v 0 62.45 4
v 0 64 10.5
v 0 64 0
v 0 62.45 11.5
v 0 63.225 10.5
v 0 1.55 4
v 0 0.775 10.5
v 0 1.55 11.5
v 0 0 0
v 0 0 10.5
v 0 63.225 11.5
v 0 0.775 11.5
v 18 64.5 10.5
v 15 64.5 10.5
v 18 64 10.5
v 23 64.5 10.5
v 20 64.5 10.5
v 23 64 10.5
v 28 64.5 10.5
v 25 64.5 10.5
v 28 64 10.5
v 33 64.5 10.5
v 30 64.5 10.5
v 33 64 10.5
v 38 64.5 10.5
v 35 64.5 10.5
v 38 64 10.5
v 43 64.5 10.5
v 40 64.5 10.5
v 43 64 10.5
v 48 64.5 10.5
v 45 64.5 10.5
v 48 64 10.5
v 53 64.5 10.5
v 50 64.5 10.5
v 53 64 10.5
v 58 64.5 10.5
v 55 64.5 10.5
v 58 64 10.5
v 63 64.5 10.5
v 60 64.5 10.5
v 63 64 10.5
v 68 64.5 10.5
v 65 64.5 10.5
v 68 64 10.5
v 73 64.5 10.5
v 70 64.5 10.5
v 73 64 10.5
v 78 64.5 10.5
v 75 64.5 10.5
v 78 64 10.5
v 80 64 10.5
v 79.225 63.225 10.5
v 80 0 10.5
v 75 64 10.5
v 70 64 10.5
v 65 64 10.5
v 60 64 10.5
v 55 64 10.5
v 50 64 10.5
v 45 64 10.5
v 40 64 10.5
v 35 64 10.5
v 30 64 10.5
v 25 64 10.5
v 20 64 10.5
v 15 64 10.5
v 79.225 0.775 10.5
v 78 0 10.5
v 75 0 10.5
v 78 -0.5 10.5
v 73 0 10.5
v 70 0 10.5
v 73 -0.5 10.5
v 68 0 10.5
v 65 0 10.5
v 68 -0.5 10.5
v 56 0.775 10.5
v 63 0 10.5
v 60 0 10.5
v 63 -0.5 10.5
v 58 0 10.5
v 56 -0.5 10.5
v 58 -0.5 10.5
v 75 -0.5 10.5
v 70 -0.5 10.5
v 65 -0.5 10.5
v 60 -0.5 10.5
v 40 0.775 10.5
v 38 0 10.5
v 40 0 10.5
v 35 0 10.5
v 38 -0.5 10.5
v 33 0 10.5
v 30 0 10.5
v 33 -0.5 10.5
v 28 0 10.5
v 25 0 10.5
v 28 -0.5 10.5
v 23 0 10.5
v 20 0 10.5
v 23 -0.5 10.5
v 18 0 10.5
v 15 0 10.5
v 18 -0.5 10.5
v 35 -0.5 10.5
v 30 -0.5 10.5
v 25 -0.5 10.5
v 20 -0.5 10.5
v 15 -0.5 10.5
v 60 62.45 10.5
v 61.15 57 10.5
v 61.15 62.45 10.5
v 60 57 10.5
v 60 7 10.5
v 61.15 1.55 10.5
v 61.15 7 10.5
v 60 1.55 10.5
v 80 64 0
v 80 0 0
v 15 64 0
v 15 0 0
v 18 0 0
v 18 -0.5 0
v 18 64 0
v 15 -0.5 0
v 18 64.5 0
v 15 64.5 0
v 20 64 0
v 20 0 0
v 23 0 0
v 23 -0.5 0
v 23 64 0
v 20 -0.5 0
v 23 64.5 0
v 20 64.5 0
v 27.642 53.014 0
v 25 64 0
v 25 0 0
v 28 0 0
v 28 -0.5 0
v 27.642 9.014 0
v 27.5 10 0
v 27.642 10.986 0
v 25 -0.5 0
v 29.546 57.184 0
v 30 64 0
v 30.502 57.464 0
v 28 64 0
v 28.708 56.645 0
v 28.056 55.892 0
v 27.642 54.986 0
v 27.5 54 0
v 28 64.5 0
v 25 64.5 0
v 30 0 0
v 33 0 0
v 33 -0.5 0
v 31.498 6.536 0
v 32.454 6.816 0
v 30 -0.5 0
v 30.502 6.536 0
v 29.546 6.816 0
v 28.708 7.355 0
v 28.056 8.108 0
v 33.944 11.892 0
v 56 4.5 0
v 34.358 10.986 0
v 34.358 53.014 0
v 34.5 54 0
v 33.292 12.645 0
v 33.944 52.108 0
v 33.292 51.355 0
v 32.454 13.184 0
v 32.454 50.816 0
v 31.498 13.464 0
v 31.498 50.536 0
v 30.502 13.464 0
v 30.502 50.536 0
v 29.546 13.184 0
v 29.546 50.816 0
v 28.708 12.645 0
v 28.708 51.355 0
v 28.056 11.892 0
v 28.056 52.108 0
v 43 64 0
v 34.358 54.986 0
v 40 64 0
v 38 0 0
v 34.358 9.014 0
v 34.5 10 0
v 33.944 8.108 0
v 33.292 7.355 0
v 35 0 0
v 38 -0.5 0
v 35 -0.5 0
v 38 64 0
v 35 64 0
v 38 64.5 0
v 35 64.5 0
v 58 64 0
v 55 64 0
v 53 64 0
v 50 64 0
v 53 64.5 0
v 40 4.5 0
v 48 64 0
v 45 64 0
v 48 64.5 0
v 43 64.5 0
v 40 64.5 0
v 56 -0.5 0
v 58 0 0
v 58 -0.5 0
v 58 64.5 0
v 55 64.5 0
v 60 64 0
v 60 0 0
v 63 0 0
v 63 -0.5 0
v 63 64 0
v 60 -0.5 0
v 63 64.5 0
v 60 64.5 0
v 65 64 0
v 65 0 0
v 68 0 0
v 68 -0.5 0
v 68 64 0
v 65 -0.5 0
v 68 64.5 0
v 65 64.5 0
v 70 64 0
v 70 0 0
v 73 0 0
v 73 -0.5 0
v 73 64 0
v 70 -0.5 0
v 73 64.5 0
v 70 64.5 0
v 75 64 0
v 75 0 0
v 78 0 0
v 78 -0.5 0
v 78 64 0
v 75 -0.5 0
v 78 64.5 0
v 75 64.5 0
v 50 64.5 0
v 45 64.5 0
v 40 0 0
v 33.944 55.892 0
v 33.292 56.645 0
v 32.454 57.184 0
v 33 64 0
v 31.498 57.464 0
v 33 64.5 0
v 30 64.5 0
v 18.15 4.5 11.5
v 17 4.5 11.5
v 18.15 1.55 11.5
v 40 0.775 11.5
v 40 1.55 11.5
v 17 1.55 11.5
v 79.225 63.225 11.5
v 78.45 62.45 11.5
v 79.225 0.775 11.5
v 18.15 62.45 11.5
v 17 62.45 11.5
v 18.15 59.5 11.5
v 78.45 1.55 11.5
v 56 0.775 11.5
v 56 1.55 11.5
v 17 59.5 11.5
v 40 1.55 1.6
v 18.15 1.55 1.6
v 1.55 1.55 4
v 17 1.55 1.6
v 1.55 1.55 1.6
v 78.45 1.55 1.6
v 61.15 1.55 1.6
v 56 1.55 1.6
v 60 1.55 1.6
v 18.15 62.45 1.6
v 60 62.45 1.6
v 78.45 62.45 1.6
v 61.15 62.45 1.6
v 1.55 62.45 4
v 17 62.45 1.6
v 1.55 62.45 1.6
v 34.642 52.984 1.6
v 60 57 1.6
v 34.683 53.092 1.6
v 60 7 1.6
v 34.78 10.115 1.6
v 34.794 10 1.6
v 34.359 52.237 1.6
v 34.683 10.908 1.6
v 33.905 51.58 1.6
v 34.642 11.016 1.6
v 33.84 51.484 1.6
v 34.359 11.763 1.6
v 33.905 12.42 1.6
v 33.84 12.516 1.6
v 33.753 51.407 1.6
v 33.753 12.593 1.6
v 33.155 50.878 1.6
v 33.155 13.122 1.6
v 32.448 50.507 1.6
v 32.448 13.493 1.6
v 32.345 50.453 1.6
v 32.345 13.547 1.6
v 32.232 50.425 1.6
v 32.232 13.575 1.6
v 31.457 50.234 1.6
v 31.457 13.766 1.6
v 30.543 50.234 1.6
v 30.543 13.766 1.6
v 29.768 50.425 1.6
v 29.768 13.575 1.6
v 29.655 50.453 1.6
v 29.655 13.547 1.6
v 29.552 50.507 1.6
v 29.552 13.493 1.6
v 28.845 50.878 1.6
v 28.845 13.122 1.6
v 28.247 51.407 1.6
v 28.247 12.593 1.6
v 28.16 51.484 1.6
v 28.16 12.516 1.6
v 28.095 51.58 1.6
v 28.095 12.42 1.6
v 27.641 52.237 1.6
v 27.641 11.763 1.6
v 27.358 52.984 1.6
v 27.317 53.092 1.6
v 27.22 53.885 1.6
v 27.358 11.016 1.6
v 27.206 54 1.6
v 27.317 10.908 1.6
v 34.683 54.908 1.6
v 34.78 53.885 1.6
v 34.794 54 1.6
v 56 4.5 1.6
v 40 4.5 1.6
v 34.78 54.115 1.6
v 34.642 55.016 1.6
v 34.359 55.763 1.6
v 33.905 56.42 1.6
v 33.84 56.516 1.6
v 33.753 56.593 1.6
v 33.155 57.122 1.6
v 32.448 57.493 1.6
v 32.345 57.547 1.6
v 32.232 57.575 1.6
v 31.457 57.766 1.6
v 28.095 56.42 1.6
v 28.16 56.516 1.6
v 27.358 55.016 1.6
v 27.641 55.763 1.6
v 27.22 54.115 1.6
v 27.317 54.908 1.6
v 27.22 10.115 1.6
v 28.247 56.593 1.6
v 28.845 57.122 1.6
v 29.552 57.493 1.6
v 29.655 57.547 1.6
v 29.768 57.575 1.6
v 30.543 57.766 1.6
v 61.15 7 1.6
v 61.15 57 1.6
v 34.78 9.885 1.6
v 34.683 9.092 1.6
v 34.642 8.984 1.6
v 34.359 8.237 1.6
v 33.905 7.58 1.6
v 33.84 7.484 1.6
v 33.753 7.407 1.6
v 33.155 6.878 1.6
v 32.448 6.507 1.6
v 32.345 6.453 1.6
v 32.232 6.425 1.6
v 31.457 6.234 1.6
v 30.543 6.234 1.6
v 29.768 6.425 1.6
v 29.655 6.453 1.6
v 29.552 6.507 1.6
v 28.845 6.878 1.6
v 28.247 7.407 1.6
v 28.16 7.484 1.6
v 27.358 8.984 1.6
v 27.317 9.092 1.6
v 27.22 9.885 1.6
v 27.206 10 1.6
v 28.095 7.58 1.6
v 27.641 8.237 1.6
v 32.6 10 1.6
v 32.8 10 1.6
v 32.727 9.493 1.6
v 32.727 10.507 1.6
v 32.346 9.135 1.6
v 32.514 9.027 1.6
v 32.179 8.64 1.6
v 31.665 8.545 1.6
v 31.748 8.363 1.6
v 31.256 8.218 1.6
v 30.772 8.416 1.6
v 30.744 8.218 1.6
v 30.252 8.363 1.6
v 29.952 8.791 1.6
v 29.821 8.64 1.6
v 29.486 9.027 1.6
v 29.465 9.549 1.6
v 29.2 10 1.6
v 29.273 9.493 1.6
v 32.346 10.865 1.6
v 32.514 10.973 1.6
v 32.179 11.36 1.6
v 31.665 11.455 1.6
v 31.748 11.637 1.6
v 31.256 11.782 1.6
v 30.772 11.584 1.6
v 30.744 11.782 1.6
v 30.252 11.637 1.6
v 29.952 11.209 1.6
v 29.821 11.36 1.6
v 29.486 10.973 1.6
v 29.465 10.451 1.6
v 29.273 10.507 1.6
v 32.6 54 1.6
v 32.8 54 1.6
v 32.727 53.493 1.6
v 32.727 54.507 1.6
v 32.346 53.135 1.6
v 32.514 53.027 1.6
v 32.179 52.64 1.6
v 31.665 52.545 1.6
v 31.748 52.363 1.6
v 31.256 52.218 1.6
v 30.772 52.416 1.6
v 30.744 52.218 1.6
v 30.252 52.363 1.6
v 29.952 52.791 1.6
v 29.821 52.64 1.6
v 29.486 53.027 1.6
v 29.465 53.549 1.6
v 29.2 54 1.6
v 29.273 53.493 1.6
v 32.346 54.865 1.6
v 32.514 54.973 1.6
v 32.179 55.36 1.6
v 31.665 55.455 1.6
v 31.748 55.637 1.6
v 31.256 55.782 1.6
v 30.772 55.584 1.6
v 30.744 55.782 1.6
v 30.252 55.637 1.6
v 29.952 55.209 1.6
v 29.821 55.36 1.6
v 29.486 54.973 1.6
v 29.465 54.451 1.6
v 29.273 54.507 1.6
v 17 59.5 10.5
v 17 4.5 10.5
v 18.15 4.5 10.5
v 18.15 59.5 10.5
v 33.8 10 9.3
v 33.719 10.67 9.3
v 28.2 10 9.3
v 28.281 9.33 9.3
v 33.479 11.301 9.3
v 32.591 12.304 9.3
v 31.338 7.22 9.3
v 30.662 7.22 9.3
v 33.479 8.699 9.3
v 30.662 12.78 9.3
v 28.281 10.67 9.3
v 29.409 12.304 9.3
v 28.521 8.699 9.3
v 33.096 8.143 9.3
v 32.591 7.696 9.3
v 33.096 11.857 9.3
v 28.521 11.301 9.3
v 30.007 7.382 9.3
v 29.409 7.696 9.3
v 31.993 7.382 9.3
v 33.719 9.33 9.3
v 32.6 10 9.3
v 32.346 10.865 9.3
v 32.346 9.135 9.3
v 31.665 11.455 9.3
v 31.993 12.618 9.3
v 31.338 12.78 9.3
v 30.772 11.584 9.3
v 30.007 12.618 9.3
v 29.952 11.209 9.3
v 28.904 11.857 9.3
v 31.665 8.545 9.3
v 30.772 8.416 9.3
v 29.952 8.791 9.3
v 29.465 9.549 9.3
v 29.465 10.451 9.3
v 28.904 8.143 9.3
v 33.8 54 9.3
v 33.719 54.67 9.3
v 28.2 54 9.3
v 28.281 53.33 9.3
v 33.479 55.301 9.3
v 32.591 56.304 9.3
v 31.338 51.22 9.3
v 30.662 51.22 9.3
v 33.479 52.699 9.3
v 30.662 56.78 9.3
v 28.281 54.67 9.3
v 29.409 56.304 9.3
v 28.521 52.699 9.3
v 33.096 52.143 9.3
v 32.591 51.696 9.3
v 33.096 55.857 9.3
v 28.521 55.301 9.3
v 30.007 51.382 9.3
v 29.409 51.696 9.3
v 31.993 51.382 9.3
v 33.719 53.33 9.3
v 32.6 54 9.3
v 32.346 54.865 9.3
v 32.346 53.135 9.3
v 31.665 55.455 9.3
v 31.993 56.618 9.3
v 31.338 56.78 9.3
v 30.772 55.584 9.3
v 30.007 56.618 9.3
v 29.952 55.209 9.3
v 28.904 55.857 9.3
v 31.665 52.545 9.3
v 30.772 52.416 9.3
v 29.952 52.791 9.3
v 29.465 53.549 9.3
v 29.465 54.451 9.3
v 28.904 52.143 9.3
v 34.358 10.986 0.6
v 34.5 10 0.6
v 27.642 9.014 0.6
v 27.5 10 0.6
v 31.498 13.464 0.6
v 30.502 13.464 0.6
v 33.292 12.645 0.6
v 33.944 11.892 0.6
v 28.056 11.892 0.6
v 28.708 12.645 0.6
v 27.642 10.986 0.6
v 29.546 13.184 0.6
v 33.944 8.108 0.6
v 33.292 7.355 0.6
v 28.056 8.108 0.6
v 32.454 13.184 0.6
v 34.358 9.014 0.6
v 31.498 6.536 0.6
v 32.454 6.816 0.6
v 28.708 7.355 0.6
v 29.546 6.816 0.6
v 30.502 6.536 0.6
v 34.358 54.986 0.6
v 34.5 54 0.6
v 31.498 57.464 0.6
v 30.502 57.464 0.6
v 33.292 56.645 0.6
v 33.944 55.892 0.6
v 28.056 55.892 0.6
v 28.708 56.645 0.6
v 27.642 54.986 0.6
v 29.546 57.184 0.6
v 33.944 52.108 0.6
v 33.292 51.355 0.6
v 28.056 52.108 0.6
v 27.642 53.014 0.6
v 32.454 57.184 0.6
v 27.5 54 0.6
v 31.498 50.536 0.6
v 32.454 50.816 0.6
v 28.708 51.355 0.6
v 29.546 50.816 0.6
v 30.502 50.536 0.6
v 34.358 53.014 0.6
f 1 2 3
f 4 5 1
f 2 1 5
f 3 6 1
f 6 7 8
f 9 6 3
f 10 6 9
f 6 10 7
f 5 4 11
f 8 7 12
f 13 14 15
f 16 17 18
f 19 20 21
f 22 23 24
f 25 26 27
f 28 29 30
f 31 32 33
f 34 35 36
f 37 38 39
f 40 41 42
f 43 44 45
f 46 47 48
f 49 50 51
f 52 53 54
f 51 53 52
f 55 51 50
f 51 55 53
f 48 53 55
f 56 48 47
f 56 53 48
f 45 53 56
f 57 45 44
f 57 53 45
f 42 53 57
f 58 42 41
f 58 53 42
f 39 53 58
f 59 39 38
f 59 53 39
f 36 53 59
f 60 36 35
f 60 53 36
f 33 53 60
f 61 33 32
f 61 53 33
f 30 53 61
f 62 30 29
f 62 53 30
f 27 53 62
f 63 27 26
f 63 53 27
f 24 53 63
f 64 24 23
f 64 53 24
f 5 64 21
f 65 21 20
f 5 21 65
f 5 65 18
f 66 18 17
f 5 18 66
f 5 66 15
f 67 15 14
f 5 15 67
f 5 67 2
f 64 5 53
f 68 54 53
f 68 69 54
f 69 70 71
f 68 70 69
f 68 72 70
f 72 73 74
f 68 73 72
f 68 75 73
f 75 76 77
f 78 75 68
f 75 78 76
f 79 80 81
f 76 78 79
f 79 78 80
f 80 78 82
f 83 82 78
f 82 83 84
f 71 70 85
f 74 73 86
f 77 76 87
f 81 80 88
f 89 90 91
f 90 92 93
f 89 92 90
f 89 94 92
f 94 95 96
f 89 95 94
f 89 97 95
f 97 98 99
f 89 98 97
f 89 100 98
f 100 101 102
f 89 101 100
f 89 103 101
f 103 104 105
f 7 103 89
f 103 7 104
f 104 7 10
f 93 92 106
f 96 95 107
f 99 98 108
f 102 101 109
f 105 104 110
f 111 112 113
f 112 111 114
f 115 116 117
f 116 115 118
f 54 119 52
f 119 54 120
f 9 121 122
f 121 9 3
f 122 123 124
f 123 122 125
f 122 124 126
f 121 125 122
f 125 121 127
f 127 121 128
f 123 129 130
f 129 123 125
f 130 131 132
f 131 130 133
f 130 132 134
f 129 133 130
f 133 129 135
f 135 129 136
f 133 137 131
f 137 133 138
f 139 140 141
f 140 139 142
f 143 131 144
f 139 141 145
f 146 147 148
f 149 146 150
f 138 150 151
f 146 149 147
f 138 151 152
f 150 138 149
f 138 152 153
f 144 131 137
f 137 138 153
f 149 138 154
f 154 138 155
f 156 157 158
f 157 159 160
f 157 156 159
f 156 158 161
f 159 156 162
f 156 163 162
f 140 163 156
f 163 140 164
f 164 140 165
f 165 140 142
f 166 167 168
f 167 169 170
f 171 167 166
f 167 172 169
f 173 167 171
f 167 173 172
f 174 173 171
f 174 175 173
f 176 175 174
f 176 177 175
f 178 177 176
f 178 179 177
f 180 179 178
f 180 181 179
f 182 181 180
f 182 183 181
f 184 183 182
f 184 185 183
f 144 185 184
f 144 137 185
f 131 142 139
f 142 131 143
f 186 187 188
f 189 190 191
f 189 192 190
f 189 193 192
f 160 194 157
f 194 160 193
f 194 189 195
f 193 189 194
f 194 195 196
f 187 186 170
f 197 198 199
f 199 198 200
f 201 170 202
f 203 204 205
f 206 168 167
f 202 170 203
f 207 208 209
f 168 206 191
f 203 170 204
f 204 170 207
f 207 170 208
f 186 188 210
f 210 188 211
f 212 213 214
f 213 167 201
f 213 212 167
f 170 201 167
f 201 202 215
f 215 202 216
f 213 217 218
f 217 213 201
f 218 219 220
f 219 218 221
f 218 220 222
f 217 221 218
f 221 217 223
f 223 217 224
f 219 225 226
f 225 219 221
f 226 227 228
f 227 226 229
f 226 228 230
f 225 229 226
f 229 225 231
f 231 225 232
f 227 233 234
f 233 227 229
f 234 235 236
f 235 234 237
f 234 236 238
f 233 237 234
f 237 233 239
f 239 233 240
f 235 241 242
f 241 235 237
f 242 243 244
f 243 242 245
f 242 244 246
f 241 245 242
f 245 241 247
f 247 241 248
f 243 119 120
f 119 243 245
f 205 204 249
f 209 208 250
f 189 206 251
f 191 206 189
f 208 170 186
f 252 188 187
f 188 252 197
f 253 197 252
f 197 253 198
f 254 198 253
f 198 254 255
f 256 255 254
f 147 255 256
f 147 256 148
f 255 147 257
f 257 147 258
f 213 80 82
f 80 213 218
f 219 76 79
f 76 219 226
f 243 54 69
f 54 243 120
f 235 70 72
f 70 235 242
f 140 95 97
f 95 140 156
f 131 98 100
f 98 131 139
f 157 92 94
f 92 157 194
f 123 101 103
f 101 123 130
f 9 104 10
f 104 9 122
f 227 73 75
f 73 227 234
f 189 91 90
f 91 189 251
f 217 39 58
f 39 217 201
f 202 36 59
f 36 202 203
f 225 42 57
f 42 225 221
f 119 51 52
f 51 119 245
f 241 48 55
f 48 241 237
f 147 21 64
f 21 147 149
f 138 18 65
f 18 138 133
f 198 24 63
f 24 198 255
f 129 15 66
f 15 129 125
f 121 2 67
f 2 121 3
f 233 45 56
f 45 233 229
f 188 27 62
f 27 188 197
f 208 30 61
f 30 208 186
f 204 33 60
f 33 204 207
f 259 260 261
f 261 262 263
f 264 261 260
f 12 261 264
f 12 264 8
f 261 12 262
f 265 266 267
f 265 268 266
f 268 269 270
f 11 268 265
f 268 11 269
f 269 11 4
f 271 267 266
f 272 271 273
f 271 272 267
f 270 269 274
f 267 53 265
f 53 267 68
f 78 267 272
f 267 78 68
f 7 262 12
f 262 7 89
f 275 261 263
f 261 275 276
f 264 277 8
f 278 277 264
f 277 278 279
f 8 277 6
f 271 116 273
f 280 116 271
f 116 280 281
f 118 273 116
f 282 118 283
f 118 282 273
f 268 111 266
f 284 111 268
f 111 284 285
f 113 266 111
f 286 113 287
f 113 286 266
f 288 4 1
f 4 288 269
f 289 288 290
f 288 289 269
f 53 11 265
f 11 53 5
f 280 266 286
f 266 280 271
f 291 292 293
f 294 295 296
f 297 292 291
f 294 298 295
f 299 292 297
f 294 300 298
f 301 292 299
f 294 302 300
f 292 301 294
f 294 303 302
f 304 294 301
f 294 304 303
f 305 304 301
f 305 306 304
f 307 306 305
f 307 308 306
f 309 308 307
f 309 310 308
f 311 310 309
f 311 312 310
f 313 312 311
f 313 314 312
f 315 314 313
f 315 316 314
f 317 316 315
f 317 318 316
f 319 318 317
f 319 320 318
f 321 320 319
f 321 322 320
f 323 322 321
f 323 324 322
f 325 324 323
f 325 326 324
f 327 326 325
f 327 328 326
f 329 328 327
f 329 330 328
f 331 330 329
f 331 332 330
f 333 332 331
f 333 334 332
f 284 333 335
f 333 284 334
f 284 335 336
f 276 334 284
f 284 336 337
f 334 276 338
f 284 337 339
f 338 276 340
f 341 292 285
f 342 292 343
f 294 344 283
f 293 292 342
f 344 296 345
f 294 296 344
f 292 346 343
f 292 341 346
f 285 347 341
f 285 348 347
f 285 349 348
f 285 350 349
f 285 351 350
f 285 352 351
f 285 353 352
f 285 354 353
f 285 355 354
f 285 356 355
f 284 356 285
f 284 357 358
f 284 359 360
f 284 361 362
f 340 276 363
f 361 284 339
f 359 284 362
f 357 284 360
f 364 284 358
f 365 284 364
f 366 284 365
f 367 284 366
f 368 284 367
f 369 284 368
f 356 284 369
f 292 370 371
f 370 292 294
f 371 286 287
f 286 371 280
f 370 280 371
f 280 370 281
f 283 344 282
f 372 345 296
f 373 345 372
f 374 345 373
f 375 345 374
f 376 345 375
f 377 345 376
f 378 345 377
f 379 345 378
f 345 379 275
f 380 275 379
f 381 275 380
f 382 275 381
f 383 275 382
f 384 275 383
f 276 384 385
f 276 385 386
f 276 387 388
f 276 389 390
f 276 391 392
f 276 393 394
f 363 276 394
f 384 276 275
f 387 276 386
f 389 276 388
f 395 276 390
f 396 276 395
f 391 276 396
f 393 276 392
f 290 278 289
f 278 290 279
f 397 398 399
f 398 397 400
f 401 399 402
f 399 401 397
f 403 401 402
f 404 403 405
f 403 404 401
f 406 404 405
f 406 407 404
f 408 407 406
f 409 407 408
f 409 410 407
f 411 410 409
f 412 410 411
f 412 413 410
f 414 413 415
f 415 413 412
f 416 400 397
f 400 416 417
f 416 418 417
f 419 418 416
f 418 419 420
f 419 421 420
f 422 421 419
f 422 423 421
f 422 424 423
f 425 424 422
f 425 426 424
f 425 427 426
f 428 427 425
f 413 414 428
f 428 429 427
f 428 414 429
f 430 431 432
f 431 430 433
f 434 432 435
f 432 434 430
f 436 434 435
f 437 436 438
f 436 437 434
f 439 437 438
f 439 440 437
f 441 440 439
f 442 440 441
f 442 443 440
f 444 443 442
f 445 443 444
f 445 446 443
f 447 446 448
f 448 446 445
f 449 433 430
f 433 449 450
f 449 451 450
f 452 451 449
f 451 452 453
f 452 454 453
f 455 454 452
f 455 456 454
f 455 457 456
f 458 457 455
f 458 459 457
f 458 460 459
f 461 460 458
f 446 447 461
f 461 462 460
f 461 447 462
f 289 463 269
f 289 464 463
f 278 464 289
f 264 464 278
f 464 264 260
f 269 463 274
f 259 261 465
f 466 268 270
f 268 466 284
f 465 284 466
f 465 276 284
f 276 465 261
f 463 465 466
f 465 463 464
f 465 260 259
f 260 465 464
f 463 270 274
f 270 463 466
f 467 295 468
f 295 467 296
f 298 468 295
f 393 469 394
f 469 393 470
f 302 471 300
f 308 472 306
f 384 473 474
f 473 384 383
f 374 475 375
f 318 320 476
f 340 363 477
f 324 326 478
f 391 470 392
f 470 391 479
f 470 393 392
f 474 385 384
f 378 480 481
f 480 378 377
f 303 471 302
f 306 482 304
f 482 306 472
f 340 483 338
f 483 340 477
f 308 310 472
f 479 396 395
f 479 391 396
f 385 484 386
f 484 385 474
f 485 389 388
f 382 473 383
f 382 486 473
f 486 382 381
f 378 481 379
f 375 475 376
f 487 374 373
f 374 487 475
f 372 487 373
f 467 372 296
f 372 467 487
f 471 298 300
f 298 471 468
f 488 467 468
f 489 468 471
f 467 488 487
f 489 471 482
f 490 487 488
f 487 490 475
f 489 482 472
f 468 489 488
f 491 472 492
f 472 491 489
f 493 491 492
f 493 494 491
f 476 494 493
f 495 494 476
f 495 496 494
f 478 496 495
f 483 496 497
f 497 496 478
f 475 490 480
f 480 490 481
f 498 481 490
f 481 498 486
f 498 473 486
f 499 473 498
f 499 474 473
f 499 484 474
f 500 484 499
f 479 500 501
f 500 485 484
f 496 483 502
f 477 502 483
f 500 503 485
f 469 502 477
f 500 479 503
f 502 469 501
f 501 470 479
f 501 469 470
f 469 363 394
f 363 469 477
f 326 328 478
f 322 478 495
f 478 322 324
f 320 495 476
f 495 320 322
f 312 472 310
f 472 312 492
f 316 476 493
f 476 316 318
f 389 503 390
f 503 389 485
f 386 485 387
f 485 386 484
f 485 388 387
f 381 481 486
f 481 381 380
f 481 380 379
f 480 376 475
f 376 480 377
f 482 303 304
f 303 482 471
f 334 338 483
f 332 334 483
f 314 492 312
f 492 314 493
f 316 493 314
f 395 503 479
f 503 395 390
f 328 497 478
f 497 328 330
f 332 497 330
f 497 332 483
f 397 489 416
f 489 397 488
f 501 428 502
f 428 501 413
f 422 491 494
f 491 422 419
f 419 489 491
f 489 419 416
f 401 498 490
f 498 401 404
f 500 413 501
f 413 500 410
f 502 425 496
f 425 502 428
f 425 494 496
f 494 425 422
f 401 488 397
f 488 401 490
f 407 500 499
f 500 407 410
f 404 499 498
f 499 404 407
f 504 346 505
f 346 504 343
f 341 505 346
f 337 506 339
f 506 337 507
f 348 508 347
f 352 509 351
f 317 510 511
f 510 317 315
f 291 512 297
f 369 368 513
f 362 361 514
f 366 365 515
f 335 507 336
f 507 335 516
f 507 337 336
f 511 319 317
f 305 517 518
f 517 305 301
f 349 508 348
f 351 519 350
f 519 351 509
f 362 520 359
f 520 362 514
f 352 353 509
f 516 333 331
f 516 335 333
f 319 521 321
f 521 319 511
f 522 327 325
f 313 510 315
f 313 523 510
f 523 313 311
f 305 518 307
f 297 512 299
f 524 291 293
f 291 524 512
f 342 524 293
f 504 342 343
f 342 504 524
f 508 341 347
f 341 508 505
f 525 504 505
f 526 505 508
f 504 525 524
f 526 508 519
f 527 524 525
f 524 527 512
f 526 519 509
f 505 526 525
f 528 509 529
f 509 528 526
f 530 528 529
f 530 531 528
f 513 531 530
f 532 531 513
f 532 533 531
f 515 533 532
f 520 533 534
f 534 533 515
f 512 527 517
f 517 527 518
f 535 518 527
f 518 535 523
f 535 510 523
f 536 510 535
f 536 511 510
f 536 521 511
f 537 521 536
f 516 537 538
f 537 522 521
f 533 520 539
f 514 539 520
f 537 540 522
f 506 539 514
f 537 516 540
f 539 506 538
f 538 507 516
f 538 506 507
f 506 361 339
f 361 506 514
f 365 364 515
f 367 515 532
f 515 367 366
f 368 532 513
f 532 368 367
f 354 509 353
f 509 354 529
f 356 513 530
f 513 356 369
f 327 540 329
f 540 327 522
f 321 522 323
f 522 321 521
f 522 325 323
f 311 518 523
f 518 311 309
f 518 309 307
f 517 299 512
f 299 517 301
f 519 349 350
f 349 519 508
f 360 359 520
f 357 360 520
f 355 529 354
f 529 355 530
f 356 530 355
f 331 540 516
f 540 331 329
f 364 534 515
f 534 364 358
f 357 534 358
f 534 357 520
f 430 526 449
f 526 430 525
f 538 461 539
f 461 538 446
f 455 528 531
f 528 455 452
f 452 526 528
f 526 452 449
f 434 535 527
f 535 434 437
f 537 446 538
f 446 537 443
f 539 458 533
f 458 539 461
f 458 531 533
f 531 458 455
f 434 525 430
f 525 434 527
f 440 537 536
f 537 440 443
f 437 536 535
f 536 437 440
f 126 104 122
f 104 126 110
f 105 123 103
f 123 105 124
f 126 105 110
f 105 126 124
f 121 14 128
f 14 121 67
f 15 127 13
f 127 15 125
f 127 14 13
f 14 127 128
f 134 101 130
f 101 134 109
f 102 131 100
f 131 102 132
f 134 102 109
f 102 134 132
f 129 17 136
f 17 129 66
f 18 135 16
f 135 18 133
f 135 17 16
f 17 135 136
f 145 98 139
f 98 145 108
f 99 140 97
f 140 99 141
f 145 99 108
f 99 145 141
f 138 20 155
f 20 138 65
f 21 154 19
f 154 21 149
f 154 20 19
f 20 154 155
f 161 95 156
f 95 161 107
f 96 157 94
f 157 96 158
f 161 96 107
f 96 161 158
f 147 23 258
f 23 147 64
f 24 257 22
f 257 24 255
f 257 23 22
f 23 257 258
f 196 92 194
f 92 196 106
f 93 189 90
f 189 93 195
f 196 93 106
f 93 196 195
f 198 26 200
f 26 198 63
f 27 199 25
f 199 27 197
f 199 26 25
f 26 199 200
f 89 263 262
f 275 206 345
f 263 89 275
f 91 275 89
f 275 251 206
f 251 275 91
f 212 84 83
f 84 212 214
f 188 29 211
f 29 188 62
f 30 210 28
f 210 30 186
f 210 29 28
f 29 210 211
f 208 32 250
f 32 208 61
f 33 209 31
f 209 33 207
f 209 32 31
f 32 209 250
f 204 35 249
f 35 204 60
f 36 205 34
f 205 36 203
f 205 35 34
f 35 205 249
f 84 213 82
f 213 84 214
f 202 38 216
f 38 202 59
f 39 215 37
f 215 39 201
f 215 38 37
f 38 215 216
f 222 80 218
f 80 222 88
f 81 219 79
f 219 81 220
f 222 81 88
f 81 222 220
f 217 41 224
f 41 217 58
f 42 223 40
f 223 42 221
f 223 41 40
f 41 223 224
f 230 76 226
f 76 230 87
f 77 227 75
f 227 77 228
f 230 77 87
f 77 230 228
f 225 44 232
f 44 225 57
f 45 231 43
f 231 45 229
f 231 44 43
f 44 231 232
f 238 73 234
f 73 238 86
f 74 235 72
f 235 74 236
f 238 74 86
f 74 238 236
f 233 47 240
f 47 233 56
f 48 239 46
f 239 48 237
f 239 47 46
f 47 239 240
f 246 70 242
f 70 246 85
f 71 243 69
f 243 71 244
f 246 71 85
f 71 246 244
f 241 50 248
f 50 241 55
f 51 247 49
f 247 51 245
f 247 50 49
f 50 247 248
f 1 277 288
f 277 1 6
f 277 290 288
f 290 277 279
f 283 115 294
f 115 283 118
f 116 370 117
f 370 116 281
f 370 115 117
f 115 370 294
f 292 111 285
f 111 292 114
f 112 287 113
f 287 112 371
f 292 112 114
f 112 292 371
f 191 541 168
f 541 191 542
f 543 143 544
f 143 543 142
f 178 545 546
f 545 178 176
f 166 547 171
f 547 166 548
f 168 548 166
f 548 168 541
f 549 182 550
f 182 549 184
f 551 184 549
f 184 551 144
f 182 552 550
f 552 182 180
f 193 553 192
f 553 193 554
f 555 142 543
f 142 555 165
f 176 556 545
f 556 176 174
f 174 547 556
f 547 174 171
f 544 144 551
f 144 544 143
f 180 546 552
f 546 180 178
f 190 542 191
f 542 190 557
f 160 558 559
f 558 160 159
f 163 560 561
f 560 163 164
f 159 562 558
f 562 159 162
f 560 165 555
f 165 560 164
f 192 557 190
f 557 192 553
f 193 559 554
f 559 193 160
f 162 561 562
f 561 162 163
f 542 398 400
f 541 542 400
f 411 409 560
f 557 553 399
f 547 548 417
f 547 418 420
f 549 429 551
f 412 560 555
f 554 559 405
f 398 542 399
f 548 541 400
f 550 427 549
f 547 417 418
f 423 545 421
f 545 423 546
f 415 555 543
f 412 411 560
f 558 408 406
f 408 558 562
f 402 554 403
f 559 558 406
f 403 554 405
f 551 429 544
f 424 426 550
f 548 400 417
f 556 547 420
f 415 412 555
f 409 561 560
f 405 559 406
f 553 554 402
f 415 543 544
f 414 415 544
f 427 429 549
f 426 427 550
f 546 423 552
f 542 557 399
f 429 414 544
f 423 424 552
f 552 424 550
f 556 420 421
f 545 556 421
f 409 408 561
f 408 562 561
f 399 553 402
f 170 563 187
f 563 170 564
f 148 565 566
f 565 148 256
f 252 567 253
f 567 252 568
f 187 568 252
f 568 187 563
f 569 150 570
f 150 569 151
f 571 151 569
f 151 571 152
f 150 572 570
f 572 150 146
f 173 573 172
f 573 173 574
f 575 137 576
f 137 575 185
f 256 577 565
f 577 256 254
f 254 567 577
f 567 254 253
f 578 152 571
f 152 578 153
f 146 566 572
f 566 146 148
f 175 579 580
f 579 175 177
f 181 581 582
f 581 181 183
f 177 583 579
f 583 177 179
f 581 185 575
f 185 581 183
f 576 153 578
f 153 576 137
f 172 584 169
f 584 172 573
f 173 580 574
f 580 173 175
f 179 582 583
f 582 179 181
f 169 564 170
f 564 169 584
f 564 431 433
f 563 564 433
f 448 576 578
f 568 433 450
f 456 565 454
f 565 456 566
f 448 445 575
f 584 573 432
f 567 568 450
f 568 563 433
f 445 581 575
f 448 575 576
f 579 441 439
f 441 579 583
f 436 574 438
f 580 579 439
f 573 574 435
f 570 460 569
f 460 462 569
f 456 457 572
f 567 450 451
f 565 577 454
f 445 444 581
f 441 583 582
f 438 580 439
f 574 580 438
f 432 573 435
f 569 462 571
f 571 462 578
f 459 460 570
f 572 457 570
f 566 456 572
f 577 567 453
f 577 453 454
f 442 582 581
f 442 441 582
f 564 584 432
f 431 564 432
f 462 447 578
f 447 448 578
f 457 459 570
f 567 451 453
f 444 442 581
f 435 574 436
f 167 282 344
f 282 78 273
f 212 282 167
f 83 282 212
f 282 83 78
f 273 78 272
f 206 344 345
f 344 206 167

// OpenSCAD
/* A8PicoCart shell
   (c) R.Edwards 2023
*/

ridge_width = 0.5;
cart_length=80;
cart_width=65 - (ridge_width*2);
cart_height=11.5;
screw_sep = 44;
front_thickness = 1.6;
sides_thickness = 1.6 - 0.05;
support_thickness = 1.2 - 0.05;
support_height = 10.5;
rim_height=1;

difference() {
    union() {
        difference() {
            // main shell
            union() {
                cube([cart_length, cart_width, cart_height-rim_height]);
                // rim
                translate([0, sides_thickness/2, cart_height-rim_height])
                    cube([cart_length-sides_thickness/2, sides_thickness/2, rim_height]);
                translate([0, cart_width-sides_thickness, cart_height-rim_height])
                    cube([cart_length-sides_thickness/2, sides_thickness/2, rim_height]);
                translate([cart_length-sides_thickness, sides_thickness/2, cart_height-rim_height])
                    cube([sides_thickness/2, cart_width-sides_thickness, rim_height]);
            }
            // make hollow
            translate([0, sides_thickness, front_thickness])
                cube([cart_length-sides_thickness,
                    cart_width-sides_thickness*2,
                    cart_height-front_thickness]);
        }    
        // end
        cube([sides_thickness, cart_width, 4]);
        // pcb supports
        difference() {
            translate([17, sides_thickness, 0])
                cube([support_thickness, cart_width-sides_thickness*2, cart_height]);
            translate([17, (cart_width-55)/2, support_height])
                cube([support_thickness, 55, cart_height-support_height]);
        }
        translate([60, 0, 0])
            cube([support_thickness, 7, support_height]);
        translate([60, cart_width-7, 0])
            cube([support_thickness, 7, support_height]);
        // screw holes
        translate([31, (cart_width-screw_sep)/2, 0])
            difference() {
                cylinder(h = support_height - 1.2, r1 = 4, r2 = 2.8,  $fs = 1);
                cylinder(h = support_height - 1.2, r1 = 1.6, r2 = 1.6,  $fs = 1);
            }
        translate([31, cart_width-(cart_width-screw_sep)/2, 0])
            difference() {
                cylinder(h = support_height - 1.2, r1 = 4, r2 = 2.8,  $fs = 1);
                cylinder(h = support_height - 1.2, r1 = 1.6, r2 = 1.6,  $fs = 1);
            }
        // ridges
        for (i = [15: 5: cart_length-5])
            union() {
                translate([i, -ridge_width, 0])
                    cube([3, ridge_width, cart_height-rim_height]);
                translate([i, cart_width, 0])
                    cube([3, ridge_width, cart_height-rim_height]);
            }
    }
    // screw head
    translate([31, (cart_width-screw_sep)/2, 0])
        cylinder(h = 0.6, r1 = 3.5, r2 = 3.5,  $fs = 1);
    translate([31, (cart_width-screw_sep)/2, 0.6])
        cylinder(h = front_thickness-0.6, r1 = 3.5, r2 = 1.8,  $fs = 1);

    translate([31, cart_width-(cart_width-screw_sep)/2, 0])
        cylinder(h = 0.6, r1 = 3.5, r2 = 3.5,  $fs = 1);
    translate([31, cart_width-(cart_width-screw_sep)/2, 0.6])
        cylinder(h = front_thickness-0.6, r1 = 3.5, r2 = 1.8,  $fs = 1);
     // cutout USB slot
    translate([40, -ridge_width, 0])
        cube([16, 5, cart_height]);

}
